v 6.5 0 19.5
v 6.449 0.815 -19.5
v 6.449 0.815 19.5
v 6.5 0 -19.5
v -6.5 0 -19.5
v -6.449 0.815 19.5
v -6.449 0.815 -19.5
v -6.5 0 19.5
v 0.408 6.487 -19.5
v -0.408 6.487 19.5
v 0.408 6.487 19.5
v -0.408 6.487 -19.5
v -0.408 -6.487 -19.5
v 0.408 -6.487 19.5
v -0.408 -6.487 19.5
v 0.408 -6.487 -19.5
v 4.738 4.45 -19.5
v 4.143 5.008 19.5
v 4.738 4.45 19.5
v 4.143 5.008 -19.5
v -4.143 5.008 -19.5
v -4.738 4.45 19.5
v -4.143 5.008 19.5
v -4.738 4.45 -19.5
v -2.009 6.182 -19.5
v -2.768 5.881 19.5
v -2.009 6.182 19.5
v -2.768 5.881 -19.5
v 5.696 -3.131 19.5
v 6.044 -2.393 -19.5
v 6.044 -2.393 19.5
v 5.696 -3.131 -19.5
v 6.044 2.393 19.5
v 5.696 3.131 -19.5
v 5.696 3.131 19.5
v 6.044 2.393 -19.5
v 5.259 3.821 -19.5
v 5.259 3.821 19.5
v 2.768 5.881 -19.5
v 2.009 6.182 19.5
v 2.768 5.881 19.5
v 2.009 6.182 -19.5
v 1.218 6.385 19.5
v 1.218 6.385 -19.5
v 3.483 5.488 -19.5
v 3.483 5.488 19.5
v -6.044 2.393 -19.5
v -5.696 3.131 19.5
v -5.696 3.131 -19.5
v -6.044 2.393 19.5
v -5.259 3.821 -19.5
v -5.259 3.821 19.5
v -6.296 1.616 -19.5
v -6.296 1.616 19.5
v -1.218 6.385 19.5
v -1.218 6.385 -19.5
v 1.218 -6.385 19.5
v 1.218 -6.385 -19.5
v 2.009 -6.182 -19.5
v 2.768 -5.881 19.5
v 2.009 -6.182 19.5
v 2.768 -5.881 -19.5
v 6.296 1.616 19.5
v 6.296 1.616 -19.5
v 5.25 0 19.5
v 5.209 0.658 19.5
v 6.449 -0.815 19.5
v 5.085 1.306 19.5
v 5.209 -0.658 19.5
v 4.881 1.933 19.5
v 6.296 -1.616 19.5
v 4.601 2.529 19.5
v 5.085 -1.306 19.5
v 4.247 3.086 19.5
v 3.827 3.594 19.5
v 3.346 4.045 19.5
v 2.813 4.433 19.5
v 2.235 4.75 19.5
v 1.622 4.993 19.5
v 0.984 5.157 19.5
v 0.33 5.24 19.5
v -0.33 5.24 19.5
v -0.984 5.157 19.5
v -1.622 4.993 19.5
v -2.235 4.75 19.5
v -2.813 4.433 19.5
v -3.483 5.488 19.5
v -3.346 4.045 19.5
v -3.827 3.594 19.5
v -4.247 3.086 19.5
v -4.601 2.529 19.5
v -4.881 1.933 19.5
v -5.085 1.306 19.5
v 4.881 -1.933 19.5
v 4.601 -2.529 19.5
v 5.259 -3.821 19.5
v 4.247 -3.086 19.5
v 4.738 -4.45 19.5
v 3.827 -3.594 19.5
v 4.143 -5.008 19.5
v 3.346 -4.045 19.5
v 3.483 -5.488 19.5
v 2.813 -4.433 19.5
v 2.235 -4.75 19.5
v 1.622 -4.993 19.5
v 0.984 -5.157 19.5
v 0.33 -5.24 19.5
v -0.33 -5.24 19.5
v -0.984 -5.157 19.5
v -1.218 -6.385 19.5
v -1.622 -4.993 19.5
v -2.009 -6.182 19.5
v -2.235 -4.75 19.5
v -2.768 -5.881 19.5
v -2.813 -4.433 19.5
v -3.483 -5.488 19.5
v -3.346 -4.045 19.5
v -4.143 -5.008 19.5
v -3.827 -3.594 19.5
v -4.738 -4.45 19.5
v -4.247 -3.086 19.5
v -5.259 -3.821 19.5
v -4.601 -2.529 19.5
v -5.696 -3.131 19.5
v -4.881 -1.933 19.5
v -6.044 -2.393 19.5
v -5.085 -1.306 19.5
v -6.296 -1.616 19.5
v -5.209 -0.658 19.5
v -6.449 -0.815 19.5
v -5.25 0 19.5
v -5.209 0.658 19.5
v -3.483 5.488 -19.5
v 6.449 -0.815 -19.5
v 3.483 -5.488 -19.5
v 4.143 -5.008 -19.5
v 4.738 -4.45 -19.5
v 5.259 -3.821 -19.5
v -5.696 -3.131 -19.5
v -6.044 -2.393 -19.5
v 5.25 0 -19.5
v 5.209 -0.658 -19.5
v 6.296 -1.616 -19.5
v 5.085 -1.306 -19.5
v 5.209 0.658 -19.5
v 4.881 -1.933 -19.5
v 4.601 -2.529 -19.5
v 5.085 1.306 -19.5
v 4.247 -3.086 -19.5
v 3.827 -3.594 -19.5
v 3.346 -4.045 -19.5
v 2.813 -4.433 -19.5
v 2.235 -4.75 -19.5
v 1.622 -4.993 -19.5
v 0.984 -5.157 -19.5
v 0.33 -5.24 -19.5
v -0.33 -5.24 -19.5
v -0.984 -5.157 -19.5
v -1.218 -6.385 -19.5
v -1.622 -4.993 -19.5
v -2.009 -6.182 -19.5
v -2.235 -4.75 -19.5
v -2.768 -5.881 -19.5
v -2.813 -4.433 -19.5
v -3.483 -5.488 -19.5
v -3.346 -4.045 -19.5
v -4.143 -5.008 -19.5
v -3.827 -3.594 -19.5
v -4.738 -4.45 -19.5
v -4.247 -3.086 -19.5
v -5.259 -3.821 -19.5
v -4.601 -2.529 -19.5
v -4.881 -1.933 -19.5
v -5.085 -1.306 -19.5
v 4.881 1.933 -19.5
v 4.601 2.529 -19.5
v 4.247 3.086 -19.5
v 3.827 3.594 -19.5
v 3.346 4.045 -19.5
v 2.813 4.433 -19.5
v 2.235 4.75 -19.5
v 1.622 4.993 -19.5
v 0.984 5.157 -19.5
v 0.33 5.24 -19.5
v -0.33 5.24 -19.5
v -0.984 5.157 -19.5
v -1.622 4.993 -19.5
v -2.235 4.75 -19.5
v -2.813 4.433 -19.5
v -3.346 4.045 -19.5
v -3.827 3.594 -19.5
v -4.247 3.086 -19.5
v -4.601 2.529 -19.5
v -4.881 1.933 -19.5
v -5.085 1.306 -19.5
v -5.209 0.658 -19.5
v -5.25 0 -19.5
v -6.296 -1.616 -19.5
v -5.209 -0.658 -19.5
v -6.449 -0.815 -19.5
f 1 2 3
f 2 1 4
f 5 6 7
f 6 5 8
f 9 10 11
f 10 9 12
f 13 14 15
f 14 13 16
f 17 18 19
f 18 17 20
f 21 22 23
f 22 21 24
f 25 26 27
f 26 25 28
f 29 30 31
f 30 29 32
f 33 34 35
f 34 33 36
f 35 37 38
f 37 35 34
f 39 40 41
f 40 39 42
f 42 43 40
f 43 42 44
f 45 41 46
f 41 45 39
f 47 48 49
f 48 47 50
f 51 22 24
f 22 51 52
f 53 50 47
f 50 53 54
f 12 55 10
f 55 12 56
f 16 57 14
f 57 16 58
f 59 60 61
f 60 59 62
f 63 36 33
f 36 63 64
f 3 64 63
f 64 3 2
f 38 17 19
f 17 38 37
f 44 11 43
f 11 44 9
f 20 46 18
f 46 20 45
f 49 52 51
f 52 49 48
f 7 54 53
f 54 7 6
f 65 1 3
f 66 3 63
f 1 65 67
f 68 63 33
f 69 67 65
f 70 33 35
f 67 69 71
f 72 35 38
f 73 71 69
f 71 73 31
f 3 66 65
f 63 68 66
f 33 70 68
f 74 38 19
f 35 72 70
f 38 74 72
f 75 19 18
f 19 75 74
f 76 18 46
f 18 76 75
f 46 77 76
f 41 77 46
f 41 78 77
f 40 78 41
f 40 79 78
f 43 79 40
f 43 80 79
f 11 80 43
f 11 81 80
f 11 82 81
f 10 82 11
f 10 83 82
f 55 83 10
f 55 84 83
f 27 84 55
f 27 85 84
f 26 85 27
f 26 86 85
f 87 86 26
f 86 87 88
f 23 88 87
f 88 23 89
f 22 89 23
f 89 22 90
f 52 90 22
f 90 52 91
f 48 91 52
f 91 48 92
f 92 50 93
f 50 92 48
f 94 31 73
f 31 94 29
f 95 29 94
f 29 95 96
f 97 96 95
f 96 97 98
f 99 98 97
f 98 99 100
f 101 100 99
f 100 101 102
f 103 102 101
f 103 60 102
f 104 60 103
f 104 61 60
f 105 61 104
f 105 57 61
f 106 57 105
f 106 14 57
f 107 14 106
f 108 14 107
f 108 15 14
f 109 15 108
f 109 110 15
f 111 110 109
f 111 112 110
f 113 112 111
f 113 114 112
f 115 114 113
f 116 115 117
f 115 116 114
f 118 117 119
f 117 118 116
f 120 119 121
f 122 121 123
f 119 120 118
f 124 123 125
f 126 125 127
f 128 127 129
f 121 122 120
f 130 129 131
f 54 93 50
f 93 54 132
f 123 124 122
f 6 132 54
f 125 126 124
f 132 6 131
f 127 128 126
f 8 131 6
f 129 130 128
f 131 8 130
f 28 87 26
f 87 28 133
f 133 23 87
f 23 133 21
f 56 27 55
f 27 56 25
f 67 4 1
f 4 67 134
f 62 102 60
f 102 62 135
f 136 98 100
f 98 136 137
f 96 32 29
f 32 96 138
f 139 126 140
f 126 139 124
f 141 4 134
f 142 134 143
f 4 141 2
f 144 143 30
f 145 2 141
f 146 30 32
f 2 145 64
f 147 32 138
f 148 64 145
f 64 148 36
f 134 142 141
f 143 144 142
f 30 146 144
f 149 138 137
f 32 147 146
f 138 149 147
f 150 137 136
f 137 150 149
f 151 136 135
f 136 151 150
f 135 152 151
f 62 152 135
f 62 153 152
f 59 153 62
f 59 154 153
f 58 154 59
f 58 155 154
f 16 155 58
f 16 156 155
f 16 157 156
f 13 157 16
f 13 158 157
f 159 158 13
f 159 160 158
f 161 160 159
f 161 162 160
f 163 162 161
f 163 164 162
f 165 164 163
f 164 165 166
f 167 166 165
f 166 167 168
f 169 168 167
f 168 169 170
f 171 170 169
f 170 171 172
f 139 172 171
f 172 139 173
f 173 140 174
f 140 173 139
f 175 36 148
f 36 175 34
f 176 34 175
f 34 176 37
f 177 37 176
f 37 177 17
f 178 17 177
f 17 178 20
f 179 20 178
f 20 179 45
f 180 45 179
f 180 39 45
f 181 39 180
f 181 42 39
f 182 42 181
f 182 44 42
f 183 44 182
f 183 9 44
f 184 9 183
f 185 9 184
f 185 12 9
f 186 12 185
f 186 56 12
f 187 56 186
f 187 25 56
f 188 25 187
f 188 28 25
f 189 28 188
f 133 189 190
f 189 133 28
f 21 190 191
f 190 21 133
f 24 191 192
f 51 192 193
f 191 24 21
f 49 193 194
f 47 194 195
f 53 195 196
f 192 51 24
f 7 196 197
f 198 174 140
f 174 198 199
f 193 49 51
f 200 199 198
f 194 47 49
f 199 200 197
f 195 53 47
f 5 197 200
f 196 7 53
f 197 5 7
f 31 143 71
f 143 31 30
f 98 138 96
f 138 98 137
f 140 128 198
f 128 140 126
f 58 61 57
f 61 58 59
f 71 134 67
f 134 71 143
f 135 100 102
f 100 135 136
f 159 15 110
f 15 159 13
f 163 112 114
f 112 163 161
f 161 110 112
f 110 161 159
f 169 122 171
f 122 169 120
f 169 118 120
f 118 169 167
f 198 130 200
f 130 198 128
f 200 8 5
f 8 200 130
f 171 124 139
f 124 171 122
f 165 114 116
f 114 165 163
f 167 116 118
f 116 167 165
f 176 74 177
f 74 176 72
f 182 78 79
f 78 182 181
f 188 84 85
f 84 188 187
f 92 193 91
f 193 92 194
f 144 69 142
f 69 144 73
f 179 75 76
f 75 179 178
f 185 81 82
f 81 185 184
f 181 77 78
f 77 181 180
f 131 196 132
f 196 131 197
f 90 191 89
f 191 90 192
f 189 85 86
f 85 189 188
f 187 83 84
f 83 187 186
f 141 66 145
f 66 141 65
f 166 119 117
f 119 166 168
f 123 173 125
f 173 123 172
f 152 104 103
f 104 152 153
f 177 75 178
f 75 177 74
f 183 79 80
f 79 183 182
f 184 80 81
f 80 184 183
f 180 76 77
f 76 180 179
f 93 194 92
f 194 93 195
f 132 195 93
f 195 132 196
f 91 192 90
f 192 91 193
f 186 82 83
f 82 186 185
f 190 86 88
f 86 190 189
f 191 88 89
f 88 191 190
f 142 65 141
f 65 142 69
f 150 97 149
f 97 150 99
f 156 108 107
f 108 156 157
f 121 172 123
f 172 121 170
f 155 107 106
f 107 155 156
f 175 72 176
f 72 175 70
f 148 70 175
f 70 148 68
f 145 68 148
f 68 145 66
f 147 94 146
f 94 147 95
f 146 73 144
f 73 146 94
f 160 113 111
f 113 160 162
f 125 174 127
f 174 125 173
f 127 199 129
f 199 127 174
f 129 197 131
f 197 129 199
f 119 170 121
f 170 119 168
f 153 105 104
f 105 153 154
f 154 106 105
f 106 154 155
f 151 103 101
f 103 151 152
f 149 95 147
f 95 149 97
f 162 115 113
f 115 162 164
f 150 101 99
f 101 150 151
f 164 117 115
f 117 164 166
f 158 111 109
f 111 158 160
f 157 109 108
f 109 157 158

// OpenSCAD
$fn = 50;


difference() {
	union() {
		translate(v = [0, 0, -19.5000000000]) {
			cylinder(h = 39, r = 6.5000000000);
		}
	}
	union() {
		translate(v = [0, 0, -100.0000000000]) {
			cylinder(h = 200, r = 5.2500000000);
		}
	}
}
